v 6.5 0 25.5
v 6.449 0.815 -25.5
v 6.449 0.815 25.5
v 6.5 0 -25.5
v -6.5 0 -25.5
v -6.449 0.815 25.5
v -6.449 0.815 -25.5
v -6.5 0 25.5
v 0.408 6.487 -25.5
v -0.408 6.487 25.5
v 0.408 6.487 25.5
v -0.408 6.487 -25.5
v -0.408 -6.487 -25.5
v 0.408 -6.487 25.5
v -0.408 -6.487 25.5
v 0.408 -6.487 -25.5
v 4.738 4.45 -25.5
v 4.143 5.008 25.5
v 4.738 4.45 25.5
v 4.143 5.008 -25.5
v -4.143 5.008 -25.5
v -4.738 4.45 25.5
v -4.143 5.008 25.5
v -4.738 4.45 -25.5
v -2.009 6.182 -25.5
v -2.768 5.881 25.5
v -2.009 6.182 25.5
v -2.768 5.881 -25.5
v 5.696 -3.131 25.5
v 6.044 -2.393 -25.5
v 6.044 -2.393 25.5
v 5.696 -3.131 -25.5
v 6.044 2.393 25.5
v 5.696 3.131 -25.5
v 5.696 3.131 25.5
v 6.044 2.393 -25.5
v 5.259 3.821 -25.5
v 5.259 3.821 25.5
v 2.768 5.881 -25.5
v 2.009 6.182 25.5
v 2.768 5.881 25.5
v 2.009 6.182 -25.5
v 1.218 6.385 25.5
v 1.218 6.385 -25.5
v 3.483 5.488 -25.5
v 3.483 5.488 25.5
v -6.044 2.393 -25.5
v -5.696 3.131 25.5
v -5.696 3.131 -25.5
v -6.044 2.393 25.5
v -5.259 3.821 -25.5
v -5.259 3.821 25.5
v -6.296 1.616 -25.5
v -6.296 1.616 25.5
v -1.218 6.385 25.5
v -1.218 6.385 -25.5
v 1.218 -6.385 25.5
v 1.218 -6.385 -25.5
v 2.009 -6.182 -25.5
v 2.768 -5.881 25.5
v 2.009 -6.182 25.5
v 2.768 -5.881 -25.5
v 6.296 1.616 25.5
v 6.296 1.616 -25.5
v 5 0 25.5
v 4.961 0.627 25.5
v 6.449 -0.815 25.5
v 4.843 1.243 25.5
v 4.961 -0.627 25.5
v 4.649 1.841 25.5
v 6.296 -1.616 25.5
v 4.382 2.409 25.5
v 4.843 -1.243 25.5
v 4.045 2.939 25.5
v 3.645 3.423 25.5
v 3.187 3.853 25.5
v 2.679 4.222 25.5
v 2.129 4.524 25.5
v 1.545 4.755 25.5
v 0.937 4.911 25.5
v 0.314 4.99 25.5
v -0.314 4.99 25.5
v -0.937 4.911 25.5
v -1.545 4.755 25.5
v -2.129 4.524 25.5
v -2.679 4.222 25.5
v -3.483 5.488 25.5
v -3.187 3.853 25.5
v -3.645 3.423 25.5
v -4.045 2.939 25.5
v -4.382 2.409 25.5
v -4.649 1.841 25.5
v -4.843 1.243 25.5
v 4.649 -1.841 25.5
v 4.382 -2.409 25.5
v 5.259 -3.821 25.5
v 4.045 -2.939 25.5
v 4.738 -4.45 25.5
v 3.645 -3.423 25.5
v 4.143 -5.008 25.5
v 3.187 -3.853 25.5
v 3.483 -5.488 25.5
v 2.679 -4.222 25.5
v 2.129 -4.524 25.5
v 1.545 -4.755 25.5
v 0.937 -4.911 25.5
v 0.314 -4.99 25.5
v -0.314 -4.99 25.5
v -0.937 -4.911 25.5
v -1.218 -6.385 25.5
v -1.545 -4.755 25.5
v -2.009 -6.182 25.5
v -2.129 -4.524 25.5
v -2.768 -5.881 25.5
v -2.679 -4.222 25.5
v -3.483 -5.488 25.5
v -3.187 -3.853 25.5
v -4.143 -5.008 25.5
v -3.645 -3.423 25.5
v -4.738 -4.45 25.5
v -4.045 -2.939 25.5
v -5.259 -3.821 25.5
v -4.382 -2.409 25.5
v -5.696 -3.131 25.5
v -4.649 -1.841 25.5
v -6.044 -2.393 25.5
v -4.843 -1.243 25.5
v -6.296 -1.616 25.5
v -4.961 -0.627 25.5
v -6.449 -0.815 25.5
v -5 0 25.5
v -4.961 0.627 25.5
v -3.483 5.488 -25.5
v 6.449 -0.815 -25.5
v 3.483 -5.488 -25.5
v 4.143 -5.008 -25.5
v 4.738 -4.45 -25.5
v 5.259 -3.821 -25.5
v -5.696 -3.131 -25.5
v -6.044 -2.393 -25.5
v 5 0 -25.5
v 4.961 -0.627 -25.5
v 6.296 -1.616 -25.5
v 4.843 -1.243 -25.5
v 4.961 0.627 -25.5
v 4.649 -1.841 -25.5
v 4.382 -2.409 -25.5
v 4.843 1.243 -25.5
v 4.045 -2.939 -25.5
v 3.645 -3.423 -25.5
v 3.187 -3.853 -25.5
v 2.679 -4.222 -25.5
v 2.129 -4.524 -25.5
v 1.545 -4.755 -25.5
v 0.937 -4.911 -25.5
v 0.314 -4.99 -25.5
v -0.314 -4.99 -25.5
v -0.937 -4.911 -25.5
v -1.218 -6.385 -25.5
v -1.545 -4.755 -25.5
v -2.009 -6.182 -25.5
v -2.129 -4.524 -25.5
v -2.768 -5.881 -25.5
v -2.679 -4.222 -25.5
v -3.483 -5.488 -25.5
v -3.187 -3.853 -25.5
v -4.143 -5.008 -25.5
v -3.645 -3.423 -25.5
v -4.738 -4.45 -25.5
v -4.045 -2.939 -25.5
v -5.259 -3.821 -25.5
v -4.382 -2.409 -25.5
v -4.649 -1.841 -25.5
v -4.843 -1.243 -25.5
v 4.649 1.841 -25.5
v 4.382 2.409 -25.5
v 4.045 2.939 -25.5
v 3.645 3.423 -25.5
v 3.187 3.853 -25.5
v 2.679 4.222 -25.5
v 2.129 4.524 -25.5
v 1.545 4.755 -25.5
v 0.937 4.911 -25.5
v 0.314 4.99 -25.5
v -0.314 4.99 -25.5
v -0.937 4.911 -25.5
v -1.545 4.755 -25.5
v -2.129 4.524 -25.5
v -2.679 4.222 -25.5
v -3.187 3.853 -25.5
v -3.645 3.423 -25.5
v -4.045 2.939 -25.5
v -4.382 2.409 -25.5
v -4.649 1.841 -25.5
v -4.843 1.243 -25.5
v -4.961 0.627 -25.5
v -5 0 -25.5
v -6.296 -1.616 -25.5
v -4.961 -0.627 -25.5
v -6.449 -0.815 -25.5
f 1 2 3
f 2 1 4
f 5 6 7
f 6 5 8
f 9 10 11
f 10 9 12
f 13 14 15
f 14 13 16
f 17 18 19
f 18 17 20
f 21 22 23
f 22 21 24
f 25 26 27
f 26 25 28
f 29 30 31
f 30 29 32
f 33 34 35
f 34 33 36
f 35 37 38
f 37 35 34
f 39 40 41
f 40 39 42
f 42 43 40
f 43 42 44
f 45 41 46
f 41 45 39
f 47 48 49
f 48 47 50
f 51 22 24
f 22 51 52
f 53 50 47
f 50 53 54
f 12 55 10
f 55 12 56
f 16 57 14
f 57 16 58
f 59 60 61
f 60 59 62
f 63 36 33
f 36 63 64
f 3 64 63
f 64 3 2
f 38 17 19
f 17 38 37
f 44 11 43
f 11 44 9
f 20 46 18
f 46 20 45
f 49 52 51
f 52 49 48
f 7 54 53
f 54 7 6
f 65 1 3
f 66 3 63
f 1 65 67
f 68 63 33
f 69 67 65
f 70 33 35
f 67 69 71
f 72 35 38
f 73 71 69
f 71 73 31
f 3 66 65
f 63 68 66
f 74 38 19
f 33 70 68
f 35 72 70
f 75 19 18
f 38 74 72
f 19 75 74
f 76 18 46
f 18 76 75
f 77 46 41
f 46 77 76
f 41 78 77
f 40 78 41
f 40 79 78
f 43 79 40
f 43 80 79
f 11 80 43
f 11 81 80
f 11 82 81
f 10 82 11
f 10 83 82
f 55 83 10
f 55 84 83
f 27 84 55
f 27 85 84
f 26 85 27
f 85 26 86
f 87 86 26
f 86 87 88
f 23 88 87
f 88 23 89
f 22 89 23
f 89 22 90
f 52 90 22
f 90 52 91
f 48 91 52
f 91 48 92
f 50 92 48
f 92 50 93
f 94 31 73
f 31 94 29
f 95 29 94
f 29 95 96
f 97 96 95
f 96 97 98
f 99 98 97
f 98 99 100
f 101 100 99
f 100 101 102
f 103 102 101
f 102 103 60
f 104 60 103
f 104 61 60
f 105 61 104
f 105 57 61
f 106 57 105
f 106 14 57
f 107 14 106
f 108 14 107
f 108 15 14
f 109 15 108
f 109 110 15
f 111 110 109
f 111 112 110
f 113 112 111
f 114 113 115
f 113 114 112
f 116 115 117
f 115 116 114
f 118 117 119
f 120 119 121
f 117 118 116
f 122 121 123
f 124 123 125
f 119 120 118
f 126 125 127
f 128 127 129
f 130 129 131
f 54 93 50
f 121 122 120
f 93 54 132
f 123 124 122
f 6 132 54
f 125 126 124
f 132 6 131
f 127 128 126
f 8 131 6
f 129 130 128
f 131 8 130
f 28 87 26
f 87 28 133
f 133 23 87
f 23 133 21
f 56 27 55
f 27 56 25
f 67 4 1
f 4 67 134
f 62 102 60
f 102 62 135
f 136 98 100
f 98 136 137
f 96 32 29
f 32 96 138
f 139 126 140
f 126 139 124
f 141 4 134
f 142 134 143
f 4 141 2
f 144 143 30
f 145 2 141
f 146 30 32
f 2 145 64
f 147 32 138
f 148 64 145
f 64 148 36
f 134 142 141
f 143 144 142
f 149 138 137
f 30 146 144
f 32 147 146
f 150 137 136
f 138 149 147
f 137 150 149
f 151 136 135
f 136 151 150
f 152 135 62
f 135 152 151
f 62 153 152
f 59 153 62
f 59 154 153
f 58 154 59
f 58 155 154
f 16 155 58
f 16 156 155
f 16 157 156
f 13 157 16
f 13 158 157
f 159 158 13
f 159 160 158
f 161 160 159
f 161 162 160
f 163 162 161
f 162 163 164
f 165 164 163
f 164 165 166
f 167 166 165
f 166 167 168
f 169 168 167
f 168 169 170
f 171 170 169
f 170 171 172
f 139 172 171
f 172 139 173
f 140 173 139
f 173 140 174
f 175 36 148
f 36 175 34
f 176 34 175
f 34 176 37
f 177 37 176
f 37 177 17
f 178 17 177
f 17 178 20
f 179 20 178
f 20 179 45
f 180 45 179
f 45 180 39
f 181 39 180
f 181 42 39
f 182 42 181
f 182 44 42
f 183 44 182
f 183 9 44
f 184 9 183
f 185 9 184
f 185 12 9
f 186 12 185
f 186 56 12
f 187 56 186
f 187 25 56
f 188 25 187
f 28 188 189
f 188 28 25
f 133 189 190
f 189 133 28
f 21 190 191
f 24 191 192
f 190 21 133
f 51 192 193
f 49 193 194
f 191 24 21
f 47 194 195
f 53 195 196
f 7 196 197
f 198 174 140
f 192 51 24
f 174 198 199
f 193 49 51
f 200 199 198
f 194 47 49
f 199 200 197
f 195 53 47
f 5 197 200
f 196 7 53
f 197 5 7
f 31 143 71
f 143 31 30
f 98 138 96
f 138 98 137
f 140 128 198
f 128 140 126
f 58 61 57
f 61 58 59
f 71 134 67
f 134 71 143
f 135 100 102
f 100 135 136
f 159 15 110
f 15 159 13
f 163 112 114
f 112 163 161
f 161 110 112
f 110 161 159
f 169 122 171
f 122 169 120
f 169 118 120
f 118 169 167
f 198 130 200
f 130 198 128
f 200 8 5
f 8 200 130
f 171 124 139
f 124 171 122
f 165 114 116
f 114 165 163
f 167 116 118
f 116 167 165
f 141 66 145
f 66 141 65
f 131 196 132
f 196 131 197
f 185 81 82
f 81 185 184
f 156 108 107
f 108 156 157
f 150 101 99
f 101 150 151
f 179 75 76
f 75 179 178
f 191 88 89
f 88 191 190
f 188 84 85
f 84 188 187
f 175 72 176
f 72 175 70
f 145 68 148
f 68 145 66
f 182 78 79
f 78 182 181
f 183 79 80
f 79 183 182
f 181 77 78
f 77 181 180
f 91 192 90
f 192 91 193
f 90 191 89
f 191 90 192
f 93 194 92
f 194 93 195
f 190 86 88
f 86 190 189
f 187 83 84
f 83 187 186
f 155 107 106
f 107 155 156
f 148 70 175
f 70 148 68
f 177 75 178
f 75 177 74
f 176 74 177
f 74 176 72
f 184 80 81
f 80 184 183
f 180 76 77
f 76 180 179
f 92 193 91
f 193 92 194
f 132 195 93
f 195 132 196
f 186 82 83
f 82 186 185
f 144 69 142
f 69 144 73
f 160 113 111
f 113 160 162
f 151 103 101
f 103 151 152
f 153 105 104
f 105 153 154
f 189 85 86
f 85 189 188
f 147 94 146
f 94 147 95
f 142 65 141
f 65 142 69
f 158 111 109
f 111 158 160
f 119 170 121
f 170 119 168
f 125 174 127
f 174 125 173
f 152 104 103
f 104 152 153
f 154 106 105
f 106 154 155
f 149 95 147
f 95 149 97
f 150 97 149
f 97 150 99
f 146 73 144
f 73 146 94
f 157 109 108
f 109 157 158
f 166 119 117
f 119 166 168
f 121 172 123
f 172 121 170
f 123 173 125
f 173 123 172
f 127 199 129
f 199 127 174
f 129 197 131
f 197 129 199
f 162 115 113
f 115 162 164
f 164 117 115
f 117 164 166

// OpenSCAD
$fn = 50;


difference() {
	union() {
		translate(v = [0, 0, -25.5000000000]) {
			cylinder(h = 51, r = 6.5000000000);
		}
	}
	union() {
		translate(v = [0, 0, -100.0000000000]) {
			cylinder(h = 200, r = 5);
		}
	}
}
